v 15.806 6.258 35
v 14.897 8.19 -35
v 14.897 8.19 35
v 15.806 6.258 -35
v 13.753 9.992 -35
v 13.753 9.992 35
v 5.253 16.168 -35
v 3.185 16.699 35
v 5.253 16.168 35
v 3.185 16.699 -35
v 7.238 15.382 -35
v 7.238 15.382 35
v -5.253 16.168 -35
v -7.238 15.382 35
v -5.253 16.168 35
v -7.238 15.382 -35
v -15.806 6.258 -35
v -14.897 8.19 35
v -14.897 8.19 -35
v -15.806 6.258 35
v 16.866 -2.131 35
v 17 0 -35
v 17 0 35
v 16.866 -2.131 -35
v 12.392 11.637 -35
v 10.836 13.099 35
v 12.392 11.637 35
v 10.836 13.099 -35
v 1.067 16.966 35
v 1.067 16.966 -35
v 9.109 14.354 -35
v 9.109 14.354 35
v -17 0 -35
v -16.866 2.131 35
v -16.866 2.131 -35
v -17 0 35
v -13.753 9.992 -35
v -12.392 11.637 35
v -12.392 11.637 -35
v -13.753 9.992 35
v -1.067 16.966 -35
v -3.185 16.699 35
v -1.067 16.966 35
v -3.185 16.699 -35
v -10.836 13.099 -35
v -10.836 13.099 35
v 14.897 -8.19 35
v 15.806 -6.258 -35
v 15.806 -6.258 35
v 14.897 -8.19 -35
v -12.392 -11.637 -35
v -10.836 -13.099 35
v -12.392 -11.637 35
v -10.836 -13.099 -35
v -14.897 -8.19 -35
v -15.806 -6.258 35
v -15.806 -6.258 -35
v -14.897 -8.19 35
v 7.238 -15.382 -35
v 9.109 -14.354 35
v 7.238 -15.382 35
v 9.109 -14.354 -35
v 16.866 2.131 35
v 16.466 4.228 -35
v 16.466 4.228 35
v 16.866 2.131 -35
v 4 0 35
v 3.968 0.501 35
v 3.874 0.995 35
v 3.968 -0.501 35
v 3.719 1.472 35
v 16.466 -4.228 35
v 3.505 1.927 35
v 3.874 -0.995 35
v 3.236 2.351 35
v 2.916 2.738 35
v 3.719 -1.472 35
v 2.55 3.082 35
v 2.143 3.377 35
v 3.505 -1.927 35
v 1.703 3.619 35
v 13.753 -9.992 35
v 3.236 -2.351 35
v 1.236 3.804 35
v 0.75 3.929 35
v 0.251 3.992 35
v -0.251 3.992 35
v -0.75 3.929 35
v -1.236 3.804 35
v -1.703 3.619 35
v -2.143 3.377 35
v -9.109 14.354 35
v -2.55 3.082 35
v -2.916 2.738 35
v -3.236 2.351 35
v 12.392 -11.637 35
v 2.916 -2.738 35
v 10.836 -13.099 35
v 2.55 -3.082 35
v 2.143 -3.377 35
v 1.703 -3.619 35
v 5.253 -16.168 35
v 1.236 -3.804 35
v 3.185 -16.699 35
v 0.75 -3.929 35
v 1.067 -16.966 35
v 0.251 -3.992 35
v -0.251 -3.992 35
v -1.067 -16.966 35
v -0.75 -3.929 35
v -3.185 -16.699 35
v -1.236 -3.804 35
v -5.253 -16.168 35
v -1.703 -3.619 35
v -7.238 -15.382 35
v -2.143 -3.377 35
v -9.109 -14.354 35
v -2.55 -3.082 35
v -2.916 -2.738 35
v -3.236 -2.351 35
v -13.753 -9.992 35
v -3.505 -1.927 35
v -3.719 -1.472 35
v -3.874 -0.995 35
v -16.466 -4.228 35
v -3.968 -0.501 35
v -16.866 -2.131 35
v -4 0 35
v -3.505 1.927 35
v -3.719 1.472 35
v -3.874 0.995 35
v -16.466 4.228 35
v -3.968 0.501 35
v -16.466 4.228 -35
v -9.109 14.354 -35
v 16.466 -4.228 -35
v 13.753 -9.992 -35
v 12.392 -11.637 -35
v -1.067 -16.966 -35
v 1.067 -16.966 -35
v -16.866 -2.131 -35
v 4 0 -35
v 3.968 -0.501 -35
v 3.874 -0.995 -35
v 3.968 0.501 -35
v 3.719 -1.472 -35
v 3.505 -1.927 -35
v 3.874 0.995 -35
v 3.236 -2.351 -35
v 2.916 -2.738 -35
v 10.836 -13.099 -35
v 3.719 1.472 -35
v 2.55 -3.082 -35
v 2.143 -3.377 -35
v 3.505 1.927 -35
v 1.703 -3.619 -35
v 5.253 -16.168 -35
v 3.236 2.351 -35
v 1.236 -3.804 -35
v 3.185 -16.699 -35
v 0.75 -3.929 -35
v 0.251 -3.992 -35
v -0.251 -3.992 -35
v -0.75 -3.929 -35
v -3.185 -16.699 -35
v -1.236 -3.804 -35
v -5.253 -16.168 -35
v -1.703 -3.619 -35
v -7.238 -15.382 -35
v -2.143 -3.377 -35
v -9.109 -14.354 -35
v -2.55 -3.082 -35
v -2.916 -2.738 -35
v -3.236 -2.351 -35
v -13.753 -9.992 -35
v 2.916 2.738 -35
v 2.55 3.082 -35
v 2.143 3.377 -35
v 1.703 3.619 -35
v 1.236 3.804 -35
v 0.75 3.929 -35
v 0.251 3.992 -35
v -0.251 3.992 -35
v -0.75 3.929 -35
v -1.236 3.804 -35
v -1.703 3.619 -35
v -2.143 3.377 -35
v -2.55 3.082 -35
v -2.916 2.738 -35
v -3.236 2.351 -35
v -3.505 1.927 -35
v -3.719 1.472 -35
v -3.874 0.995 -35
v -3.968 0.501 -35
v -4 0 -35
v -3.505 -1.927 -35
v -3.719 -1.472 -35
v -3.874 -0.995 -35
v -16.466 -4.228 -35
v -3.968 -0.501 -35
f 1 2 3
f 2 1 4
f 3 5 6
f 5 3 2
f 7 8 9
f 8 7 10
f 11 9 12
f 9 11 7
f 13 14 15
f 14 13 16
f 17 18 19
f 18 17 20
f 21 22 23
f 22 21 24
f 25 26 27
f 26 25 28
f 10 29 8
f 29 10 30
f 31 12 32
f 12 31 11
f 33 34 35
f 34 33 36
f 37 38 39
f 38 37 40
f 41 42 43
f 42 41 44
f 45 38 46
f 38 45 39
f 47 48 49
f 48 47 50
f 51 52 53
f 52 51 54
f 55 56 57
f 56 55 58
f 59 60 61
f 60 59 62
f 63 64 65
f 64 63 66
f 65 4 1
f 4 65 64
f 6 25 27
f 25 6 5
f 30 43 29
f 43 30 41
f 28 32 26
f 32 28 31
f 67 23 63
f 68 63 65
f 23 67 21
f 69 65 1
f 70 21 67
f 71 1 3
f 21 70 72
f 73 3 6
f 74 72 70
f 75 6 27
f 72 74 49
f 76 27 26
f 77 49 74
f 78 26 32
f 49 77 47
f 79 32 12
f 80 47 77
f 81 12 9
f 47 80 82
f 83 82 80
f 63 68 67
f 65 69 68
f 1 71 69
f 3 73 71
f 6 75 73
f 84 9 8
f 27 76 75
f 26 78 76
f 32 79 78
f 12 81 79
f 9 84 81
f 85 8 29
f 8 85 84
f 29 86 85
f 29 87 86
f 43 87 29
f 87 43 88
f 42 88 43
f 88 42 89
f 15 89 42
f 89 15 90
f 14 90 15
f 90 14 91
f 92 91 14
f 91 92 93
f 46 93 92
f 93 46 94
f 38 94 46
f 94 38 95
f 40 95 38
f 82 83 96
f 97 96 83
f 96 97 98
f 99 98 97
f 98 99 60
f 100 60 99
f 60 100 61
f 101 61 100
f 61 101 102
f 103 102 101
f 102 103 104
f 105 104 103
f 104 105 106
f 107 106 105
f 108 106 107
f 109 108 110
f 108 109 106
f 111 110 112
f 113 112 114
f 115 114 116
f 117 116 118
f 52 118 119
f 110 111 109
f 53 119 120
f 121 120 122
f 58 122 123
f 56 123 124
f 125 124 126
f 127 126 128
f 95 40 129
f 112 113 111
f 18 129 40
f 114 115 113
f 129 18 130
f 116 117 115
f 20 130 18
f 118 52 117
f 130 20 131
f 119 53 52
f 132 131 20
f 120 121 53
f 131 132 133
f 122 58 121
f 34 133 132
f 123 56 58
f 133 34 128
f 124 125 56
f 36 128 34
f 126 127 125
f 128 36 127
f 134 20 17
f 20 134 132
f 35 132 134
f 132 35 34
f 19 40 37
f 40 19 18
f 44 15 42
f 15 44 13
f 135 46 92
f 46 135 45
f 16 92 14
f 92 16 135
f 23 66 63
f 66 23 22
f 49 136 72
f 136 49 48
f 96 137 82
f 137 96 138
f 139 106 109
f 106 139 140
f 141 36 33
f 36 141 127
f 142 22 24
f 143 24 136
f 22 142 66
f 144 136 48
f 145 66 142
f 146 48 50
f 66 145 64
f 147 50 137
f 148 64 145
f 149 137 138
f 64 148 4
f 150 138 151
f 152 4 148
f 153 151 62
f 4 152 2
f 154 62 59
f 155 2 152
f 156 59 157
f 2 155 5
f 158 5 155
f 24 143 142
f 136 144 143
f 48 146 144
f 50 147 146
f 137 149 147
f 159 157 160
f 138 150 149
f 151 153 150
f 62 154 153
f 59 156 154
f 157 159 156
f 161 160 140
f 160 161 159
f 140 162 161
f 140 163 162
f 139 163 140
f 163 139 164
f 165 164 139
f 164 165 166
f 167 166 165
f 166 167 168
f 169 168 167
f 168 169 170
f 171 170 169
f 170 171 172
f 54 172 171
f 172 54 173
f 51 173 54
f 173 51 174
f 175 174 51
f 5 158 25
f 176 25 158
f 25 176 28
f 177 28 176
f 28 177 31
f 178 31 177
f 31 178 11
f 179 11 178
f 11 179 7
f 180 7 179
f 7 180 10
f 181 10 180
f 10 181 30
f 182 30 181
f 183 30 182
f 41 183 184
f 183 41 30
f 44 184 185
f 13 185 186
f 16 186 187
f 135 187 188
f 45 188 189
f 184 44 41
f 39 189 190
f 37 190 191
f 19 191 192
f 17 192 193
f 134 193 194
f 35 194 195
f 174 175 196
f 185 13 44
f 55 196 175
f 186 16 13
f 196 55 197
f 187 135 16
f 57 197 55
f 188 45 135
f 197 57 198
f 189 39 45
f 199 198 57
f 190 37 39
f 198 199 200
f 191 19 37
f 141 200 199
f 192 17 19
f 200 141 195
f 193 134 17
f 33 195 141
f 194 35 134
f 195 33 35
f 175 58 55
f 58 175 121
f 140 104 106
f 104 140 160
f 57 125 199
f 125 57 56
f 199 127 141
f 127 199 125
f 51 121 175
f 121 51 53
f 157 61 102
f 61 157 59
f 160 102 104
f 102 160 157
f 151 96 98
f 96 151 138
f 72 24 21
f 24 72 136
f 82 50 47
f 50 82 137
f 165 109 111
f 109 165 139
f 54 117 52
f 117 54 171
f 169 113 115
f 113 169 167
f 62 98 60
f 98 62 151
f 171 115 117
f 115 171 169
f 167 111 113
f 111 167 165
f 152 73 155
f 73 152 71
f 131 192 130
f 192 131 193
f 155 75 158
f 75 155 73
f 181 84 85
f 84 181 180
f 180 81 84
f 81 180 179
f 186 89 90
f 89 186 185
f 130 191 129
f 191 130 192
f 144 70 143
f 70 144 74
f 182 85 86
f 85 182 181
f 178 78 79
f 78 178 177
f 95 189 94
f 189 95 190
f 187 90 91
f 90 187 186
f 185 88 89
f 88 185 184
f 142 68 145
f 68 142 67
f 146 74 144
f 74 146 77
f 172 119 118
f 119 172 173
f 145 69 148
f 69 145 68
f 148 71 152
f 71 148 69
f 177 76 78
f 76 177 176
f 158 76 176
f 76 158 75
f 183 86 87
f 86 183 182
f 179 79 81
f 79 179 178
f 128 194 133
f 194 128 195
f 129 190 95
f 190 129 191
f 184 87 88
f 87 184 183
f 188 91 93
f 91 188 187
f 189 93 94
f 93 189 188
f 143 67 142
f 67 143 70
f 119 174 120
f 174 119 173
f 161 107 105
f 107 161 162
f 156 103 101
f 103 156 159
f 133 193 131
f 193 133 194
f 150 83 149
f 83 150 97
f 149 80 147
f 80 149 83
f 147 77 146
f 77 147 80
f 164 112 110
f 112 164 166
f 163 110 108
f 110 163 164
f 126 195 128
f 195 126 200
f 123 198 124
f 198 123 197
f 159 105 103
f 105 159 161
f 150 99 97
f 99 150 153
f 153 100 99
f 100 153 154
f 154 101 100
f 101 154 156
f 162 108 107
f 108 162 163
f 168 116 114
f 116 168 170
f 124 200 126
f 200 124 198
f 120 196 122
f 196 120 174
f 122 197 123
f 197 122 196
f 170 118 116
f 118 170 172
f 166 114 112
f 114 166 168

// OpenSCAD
$fn = 50;


difference() {
	union() {
		translate(v = [0, 0, -35.0000000000]) {
			cylinder(h = 70, r = 17.0000000000);
		}
	}
	union() {
		translate(v = [0, 0, -100.0000000000]) {
			cylinder(h = 200, r = 4);
		}
	}
}
